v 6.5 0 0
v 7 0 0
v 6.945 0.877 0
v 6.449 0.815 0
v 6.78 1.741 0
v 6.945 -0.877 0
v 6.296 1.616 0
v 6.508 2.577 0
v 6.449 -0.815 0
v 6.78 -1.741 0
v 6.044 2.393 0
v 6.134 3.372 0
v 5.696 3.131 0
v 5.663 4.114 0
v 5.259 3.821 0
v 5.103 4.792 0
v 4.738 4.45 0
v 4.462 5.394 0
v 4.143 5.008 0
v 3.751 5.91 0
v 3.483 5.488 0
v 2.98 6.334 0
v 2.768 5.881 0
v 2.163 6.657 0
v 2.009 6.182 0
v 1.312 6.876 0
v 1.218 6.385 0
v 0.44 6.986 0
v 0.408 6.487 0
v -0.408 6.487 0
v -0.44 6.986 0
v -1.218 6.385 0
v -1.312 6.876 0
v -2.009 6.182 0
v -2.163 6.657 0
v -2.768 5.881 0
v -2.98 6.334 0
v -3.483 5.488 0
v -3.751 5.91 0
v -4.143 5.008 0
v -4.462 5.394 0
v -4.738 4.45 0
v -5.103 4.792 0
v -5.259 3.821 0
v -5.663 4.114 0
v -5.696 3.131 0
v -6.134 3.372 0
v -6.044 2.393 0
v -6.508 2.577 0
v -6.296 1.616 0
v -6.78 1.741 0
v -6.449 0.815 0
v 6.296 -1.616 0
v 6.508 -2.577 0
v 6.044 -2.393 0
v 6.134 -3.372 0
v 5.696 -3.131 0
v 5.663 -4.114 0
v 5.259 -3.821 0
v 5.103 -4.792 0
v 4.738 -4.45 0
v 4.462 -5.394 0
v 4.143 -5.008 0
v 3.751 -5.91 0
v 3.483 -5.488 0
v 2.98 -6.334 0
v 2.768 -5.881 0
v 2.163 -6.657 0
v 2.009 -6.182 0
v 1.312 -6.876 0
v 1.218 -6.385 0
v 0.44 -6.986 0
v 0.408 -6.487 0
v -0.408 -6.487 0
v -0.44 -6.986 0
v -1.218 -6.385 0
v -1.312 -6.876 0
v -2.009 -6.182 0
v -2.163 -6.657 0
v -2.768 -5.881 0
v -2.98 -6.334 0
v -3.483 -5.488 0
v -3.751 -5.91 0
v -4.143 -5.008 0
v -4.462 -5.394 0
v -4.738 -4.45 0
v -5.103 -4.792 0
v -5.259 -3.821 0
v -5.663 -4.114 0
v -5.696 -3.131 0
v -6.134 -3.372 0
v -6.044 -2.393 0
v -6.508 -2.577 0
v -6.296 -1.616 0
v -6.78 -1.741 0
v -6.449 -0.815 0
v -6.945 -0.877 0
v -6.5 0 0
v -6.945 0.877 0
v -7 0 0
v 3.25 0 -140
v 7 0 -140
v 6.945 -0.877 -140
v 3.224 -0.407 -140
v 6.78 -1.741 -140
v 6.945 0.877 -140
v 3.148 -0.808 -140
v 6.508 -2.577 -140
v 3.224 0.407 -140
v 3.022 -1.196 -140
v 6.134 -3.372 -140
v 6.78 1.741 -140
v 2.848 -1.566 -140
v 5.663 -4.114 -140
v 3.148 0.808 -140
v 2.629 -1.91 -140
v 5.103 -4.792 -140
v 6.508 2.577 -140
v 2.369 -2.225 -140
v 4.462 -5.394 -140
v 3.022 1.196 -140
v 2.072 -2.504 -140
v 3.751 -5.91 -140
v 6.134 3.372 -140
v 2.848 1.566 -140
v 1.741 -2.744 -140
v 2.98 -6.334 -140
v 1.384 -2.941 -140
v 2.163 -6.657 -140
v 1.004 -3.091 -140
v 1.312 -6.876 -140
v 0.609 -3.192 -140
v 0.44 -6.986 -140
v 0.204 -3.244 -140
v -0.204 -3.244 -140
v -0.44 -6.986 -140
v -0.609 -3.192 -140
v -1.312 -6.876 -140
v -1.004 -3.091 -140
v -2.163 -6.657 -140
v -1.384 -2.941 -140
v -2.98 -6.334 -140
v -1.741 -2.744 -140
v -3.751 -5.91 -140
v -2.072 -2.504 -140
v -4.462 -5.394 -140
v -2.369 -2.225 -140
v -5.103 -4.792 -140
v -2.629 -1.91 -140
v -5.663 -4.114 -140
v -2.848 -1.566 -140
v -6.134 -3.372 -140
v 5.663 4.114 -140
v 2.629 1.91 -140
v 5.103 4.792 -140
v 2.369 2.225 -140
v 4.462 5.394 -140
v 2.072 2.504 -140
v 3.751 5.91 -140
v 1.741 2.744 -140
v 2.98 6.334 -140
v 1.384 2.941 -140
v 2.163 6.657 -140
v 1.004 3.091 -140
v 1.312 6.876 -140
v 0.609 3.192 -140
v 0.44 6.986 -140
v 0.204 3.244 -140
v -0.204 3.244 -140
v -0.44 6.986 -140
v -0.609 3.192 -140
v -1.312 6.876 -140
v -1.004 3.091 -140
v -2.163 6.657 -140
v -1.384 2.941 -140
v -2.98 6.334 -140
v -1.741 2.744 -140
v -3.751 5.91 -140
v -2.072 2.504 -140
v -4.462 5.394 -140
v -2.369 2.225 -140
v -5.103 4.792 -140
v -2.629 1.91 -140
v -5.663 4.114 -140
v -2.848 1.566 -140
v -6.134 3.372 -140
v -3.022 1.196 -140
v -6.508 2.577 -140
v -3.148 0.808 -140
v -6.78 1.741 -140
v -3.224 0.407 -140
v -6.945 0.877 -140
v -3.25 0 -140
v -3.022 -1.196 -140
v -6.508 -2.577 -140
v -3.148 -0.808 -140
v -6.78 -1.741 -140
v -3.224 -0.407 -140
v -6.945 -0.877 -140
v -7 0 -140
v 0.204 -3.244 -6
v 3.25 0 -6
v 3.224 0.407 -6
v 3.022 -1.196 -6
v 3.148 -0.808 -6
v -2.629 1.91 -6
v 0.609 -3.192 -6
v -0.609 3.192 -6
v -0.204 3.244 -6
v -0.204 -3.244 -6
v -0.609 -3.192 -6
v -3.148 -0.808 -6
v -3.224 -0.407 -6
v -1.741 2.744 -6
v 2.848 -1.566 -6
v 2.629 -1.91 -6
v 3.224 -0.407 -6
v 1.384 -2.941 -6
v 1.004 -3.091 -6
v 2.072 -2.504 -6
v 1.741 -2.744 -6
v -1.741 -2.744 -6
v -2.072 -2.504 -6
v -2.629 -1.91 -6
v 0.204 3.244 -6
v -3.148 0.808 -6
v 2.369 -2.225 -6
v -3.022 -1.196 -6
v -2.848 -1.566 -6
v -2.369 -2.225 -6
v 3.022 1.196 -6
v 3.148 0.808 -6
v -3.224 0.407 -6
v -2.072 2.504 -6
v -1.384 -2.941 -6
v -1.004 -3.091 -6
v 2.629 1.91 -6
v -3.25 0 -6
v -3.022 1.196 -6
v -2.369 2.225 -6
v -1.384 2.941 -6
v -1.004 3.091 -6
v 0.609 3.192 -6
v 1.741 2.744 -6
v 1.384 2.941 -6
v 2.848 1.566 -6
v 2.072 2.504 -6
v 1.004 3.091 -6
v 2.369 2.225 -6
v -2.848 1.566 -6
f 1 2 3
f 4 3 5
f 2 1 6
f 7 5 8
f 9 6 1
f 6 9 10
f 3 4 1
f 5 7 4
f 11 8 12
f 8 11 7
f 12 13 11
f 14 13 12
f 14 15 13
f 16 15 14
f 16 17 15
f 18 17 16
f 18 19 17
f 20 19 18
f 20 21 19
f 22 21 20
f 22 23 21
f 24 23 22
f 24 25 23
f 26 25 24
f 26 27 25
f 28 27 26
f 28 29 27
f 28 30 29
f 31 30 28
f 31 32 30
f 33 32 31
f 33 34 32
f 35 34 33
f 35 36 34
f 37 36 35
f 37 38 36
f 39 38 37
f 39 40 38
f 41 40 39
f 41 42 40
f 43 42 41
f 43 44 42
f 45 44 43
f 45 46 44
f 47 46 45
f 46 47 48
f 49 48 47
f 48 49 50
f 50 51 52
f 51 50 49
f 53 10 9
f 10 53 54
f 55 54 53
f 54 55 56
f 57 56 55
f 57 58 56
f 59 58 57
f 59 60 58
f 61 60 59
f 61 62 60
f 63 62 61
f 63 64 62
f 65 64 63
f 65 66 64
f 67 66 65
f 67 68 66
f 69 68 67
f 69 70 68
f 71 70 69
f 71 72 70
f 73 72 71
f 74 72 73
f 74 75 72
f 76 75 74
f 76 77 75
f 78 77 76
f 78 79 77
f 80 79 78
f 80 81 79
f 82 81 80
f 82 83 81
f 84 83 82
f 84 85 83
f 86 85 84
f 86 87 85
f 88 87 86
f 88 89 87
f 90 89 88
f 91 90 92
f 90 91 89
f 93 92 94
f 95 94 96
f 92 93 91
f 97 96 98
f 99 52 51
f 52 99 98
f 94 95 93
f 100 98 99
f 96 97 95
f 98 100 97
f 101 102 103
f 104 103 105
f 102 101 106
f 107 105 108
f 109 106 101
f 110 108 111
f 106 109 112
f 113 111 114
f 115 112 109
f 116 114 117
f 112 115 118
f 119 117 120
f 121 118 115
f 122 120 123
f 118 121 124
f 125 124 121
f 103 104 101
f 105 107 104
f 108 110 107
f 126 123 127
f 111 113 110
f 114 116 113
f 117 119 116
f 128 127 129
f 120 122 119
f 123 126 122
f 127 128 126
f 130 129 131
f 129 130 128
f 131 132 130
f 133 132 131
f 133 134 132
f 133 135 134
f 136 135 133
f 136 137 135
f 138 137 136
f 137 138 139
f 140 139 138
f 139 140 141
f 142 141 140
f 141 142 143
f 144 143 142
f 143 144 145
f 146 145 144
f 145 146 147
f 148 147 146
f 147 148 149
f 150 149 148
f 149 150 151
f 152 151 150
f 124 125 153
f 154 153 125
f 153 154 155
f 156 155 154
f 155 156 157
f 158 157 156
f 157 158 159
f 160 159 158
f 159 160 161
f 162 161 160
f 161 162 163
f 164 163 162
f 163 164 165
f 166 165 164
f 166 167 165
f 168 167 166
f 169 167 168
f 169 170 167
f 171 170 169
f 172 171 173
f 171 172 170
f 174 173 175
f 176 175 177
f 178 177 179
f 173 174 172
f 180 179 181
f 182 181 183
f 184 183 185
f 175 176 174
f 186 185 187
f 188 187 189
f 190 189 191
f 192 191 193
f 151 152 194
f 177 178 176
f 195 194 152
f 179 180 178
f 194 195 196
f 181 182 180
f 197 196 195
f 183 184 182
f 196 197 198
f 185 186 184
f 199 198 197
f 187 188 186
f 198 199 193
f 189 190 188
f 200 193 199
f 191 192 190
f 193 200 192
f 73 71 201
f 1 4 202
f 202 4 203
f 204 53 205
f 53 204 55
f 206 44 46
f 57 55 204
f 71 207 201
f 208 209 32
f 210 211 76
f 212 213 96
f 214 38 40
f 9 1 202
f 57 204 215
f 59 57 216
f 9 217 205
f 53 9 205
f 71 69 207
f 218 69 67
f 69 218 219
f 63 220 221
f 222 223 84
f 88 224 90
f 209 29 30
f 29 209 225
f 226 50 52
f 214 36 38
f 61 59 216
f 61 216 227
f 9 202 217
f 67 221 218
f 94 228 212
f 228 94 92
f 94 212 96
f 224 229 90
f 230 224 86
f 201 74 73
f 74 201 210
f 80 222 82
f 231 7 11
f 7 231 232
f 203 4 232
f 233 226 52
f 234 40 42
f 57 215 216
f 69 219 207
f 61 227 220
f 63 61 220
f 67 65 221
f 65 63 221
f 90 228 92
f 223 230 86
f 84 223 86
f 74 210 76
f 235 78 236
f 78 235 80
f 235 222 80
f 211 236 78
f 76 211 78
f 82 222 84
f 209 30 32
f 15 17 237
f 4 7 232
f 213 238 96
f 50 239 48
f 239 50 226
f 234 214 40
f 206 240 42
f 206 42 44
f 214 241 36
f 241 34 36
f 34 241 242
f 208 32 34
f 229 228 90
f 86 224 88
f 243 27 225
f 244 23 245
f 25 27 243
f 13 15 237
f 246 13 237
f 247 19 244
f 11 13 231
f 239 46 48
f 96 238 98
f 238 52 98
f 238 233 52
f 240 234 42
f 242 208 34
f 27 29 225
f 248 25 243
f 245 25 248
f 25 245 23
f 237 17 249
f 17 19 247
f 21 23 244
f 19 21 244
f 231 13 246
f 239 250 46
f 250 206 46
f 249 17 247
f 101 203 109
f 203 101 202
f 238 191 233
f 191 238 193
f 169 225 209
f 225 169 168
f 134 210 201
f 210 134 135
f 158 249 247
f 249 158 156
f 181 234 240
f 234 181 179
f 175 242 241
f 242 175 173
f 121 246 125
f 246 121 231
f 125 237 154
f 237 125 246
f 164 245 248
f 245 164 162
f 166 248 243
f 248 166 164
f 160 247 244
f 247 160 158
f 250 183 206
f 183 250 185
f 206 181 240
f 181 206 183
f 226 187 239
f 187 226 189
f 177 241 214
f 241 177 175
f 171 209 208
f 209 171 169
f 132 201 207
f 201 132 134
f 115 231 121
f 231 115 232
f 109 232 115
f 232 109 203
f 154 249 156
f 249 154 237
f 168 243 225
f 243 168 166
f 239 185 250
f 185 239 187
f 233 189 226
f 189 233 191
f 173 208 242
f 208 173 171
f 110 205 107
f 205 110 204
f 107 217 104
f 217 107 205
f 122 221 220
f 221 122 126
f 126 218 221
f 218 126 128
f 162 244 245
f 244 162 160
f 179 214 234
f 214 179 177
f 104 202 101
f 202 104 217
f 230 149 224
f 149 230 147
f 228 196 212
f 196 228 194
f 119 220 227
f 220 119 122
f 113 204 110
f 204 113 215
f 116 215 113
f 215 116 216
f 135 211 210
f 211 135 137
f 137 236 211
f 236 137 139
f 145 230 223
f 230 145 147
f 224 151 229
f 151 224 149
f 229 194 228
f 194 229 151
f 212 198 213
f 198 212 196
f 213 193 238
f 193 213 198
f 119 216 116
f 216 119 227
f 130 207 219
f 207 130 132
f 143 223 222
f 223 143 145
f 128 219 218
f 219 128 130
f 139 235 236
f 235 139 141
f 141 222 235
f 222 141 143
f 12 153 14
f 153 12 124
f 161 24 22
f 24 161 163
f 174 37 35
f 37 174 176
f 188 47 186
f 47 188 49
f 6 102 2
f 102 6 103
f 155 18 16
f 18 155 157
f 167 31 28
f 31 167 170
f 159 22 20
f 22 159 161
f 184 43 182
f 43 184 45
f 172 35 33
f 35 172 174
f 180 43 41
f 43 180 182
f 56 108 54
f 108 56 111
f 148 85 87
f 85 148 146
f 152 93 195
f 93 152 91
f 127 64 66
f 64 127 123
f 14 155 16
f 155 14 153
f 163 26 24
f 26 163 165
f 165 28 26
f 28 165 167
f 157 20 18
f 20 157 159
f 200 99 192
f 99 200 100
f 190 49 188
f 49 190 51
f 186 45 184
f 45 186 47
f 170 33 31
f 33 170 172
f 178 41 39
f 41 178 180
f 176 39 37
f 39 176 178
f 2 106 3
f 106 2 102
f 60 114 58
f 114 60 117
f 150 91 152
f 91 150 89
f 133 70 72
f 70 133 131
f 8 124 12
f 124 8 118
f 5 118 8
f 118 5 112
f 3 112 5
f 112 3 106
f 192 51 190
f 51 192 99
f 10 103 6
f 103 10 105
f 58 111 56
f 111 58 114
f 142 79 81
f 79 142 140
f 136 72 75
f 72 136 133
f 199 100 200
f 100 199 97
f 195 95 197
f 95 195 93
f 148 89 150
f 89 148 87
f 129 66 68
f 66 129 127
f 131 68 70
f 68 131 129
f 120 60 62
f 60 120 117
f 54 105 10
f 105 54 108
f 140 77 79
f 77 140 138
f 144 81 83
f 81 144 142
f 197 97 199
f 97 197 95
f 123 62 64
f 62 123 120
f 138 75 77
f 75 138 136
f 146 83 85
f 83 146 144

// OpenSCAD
$fn = 50;


difference() {
	union() {
		translate(v = [0, 0, -140.0000000000]) {
			cylinder(h = 140, r = 7.0000000000);
		}
		cylinder(h = 0, r = 13.0000000000);
	}
	union() {
		translate(v = [0, 0, 0]) {
			rotate(a = [0, 0, 0]) {
				difference() {
					union() {
						#translate(v = [0, 0, -140.0000000000]) {
							cylinder(h = 140, r = 2.2500000000);
						}
						#translate(v = [0, 0, -6]) {
							cylinder(h = 6, r = 7.0000000000, r1 = 3.2500000000, r2 = 6.5000000000);
						}
						#translate(v = [0, 0, -140.0000000000]) {
							cylinder(h = 140, r = 3.2500000000);
						}
						#translate(v = [0, 0, -140.0000000000]) {
							cylinder(h = 140, r = 2.2500000000);
						}
					}
					union();
				}
			}
		}
	}
}
